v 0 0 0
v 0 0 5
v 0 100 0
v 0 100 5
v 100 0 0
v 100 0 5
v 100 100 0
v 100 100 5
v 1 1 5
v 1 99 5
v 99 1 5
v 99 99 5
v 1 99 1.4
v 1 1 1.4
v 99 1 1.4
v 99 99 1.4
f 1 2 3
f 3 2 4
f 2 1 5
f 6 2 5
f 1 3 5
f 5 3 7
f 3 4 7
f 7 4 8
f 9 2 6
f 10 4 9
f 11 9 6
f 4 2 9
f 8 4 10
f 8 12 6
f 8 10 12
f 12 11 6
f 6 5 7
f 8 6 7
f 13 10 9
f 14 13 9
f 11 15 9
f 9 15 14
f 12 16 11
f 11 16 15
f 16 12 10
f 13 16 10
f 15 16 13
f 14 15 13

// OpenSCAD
t = 0.35*4;
wallT = 1;
difference() {
	cube([100,100,5]);
	translate([wallT,wallT,t])
		cube([100-2*wallT,100-2*wallT,5]);
}
